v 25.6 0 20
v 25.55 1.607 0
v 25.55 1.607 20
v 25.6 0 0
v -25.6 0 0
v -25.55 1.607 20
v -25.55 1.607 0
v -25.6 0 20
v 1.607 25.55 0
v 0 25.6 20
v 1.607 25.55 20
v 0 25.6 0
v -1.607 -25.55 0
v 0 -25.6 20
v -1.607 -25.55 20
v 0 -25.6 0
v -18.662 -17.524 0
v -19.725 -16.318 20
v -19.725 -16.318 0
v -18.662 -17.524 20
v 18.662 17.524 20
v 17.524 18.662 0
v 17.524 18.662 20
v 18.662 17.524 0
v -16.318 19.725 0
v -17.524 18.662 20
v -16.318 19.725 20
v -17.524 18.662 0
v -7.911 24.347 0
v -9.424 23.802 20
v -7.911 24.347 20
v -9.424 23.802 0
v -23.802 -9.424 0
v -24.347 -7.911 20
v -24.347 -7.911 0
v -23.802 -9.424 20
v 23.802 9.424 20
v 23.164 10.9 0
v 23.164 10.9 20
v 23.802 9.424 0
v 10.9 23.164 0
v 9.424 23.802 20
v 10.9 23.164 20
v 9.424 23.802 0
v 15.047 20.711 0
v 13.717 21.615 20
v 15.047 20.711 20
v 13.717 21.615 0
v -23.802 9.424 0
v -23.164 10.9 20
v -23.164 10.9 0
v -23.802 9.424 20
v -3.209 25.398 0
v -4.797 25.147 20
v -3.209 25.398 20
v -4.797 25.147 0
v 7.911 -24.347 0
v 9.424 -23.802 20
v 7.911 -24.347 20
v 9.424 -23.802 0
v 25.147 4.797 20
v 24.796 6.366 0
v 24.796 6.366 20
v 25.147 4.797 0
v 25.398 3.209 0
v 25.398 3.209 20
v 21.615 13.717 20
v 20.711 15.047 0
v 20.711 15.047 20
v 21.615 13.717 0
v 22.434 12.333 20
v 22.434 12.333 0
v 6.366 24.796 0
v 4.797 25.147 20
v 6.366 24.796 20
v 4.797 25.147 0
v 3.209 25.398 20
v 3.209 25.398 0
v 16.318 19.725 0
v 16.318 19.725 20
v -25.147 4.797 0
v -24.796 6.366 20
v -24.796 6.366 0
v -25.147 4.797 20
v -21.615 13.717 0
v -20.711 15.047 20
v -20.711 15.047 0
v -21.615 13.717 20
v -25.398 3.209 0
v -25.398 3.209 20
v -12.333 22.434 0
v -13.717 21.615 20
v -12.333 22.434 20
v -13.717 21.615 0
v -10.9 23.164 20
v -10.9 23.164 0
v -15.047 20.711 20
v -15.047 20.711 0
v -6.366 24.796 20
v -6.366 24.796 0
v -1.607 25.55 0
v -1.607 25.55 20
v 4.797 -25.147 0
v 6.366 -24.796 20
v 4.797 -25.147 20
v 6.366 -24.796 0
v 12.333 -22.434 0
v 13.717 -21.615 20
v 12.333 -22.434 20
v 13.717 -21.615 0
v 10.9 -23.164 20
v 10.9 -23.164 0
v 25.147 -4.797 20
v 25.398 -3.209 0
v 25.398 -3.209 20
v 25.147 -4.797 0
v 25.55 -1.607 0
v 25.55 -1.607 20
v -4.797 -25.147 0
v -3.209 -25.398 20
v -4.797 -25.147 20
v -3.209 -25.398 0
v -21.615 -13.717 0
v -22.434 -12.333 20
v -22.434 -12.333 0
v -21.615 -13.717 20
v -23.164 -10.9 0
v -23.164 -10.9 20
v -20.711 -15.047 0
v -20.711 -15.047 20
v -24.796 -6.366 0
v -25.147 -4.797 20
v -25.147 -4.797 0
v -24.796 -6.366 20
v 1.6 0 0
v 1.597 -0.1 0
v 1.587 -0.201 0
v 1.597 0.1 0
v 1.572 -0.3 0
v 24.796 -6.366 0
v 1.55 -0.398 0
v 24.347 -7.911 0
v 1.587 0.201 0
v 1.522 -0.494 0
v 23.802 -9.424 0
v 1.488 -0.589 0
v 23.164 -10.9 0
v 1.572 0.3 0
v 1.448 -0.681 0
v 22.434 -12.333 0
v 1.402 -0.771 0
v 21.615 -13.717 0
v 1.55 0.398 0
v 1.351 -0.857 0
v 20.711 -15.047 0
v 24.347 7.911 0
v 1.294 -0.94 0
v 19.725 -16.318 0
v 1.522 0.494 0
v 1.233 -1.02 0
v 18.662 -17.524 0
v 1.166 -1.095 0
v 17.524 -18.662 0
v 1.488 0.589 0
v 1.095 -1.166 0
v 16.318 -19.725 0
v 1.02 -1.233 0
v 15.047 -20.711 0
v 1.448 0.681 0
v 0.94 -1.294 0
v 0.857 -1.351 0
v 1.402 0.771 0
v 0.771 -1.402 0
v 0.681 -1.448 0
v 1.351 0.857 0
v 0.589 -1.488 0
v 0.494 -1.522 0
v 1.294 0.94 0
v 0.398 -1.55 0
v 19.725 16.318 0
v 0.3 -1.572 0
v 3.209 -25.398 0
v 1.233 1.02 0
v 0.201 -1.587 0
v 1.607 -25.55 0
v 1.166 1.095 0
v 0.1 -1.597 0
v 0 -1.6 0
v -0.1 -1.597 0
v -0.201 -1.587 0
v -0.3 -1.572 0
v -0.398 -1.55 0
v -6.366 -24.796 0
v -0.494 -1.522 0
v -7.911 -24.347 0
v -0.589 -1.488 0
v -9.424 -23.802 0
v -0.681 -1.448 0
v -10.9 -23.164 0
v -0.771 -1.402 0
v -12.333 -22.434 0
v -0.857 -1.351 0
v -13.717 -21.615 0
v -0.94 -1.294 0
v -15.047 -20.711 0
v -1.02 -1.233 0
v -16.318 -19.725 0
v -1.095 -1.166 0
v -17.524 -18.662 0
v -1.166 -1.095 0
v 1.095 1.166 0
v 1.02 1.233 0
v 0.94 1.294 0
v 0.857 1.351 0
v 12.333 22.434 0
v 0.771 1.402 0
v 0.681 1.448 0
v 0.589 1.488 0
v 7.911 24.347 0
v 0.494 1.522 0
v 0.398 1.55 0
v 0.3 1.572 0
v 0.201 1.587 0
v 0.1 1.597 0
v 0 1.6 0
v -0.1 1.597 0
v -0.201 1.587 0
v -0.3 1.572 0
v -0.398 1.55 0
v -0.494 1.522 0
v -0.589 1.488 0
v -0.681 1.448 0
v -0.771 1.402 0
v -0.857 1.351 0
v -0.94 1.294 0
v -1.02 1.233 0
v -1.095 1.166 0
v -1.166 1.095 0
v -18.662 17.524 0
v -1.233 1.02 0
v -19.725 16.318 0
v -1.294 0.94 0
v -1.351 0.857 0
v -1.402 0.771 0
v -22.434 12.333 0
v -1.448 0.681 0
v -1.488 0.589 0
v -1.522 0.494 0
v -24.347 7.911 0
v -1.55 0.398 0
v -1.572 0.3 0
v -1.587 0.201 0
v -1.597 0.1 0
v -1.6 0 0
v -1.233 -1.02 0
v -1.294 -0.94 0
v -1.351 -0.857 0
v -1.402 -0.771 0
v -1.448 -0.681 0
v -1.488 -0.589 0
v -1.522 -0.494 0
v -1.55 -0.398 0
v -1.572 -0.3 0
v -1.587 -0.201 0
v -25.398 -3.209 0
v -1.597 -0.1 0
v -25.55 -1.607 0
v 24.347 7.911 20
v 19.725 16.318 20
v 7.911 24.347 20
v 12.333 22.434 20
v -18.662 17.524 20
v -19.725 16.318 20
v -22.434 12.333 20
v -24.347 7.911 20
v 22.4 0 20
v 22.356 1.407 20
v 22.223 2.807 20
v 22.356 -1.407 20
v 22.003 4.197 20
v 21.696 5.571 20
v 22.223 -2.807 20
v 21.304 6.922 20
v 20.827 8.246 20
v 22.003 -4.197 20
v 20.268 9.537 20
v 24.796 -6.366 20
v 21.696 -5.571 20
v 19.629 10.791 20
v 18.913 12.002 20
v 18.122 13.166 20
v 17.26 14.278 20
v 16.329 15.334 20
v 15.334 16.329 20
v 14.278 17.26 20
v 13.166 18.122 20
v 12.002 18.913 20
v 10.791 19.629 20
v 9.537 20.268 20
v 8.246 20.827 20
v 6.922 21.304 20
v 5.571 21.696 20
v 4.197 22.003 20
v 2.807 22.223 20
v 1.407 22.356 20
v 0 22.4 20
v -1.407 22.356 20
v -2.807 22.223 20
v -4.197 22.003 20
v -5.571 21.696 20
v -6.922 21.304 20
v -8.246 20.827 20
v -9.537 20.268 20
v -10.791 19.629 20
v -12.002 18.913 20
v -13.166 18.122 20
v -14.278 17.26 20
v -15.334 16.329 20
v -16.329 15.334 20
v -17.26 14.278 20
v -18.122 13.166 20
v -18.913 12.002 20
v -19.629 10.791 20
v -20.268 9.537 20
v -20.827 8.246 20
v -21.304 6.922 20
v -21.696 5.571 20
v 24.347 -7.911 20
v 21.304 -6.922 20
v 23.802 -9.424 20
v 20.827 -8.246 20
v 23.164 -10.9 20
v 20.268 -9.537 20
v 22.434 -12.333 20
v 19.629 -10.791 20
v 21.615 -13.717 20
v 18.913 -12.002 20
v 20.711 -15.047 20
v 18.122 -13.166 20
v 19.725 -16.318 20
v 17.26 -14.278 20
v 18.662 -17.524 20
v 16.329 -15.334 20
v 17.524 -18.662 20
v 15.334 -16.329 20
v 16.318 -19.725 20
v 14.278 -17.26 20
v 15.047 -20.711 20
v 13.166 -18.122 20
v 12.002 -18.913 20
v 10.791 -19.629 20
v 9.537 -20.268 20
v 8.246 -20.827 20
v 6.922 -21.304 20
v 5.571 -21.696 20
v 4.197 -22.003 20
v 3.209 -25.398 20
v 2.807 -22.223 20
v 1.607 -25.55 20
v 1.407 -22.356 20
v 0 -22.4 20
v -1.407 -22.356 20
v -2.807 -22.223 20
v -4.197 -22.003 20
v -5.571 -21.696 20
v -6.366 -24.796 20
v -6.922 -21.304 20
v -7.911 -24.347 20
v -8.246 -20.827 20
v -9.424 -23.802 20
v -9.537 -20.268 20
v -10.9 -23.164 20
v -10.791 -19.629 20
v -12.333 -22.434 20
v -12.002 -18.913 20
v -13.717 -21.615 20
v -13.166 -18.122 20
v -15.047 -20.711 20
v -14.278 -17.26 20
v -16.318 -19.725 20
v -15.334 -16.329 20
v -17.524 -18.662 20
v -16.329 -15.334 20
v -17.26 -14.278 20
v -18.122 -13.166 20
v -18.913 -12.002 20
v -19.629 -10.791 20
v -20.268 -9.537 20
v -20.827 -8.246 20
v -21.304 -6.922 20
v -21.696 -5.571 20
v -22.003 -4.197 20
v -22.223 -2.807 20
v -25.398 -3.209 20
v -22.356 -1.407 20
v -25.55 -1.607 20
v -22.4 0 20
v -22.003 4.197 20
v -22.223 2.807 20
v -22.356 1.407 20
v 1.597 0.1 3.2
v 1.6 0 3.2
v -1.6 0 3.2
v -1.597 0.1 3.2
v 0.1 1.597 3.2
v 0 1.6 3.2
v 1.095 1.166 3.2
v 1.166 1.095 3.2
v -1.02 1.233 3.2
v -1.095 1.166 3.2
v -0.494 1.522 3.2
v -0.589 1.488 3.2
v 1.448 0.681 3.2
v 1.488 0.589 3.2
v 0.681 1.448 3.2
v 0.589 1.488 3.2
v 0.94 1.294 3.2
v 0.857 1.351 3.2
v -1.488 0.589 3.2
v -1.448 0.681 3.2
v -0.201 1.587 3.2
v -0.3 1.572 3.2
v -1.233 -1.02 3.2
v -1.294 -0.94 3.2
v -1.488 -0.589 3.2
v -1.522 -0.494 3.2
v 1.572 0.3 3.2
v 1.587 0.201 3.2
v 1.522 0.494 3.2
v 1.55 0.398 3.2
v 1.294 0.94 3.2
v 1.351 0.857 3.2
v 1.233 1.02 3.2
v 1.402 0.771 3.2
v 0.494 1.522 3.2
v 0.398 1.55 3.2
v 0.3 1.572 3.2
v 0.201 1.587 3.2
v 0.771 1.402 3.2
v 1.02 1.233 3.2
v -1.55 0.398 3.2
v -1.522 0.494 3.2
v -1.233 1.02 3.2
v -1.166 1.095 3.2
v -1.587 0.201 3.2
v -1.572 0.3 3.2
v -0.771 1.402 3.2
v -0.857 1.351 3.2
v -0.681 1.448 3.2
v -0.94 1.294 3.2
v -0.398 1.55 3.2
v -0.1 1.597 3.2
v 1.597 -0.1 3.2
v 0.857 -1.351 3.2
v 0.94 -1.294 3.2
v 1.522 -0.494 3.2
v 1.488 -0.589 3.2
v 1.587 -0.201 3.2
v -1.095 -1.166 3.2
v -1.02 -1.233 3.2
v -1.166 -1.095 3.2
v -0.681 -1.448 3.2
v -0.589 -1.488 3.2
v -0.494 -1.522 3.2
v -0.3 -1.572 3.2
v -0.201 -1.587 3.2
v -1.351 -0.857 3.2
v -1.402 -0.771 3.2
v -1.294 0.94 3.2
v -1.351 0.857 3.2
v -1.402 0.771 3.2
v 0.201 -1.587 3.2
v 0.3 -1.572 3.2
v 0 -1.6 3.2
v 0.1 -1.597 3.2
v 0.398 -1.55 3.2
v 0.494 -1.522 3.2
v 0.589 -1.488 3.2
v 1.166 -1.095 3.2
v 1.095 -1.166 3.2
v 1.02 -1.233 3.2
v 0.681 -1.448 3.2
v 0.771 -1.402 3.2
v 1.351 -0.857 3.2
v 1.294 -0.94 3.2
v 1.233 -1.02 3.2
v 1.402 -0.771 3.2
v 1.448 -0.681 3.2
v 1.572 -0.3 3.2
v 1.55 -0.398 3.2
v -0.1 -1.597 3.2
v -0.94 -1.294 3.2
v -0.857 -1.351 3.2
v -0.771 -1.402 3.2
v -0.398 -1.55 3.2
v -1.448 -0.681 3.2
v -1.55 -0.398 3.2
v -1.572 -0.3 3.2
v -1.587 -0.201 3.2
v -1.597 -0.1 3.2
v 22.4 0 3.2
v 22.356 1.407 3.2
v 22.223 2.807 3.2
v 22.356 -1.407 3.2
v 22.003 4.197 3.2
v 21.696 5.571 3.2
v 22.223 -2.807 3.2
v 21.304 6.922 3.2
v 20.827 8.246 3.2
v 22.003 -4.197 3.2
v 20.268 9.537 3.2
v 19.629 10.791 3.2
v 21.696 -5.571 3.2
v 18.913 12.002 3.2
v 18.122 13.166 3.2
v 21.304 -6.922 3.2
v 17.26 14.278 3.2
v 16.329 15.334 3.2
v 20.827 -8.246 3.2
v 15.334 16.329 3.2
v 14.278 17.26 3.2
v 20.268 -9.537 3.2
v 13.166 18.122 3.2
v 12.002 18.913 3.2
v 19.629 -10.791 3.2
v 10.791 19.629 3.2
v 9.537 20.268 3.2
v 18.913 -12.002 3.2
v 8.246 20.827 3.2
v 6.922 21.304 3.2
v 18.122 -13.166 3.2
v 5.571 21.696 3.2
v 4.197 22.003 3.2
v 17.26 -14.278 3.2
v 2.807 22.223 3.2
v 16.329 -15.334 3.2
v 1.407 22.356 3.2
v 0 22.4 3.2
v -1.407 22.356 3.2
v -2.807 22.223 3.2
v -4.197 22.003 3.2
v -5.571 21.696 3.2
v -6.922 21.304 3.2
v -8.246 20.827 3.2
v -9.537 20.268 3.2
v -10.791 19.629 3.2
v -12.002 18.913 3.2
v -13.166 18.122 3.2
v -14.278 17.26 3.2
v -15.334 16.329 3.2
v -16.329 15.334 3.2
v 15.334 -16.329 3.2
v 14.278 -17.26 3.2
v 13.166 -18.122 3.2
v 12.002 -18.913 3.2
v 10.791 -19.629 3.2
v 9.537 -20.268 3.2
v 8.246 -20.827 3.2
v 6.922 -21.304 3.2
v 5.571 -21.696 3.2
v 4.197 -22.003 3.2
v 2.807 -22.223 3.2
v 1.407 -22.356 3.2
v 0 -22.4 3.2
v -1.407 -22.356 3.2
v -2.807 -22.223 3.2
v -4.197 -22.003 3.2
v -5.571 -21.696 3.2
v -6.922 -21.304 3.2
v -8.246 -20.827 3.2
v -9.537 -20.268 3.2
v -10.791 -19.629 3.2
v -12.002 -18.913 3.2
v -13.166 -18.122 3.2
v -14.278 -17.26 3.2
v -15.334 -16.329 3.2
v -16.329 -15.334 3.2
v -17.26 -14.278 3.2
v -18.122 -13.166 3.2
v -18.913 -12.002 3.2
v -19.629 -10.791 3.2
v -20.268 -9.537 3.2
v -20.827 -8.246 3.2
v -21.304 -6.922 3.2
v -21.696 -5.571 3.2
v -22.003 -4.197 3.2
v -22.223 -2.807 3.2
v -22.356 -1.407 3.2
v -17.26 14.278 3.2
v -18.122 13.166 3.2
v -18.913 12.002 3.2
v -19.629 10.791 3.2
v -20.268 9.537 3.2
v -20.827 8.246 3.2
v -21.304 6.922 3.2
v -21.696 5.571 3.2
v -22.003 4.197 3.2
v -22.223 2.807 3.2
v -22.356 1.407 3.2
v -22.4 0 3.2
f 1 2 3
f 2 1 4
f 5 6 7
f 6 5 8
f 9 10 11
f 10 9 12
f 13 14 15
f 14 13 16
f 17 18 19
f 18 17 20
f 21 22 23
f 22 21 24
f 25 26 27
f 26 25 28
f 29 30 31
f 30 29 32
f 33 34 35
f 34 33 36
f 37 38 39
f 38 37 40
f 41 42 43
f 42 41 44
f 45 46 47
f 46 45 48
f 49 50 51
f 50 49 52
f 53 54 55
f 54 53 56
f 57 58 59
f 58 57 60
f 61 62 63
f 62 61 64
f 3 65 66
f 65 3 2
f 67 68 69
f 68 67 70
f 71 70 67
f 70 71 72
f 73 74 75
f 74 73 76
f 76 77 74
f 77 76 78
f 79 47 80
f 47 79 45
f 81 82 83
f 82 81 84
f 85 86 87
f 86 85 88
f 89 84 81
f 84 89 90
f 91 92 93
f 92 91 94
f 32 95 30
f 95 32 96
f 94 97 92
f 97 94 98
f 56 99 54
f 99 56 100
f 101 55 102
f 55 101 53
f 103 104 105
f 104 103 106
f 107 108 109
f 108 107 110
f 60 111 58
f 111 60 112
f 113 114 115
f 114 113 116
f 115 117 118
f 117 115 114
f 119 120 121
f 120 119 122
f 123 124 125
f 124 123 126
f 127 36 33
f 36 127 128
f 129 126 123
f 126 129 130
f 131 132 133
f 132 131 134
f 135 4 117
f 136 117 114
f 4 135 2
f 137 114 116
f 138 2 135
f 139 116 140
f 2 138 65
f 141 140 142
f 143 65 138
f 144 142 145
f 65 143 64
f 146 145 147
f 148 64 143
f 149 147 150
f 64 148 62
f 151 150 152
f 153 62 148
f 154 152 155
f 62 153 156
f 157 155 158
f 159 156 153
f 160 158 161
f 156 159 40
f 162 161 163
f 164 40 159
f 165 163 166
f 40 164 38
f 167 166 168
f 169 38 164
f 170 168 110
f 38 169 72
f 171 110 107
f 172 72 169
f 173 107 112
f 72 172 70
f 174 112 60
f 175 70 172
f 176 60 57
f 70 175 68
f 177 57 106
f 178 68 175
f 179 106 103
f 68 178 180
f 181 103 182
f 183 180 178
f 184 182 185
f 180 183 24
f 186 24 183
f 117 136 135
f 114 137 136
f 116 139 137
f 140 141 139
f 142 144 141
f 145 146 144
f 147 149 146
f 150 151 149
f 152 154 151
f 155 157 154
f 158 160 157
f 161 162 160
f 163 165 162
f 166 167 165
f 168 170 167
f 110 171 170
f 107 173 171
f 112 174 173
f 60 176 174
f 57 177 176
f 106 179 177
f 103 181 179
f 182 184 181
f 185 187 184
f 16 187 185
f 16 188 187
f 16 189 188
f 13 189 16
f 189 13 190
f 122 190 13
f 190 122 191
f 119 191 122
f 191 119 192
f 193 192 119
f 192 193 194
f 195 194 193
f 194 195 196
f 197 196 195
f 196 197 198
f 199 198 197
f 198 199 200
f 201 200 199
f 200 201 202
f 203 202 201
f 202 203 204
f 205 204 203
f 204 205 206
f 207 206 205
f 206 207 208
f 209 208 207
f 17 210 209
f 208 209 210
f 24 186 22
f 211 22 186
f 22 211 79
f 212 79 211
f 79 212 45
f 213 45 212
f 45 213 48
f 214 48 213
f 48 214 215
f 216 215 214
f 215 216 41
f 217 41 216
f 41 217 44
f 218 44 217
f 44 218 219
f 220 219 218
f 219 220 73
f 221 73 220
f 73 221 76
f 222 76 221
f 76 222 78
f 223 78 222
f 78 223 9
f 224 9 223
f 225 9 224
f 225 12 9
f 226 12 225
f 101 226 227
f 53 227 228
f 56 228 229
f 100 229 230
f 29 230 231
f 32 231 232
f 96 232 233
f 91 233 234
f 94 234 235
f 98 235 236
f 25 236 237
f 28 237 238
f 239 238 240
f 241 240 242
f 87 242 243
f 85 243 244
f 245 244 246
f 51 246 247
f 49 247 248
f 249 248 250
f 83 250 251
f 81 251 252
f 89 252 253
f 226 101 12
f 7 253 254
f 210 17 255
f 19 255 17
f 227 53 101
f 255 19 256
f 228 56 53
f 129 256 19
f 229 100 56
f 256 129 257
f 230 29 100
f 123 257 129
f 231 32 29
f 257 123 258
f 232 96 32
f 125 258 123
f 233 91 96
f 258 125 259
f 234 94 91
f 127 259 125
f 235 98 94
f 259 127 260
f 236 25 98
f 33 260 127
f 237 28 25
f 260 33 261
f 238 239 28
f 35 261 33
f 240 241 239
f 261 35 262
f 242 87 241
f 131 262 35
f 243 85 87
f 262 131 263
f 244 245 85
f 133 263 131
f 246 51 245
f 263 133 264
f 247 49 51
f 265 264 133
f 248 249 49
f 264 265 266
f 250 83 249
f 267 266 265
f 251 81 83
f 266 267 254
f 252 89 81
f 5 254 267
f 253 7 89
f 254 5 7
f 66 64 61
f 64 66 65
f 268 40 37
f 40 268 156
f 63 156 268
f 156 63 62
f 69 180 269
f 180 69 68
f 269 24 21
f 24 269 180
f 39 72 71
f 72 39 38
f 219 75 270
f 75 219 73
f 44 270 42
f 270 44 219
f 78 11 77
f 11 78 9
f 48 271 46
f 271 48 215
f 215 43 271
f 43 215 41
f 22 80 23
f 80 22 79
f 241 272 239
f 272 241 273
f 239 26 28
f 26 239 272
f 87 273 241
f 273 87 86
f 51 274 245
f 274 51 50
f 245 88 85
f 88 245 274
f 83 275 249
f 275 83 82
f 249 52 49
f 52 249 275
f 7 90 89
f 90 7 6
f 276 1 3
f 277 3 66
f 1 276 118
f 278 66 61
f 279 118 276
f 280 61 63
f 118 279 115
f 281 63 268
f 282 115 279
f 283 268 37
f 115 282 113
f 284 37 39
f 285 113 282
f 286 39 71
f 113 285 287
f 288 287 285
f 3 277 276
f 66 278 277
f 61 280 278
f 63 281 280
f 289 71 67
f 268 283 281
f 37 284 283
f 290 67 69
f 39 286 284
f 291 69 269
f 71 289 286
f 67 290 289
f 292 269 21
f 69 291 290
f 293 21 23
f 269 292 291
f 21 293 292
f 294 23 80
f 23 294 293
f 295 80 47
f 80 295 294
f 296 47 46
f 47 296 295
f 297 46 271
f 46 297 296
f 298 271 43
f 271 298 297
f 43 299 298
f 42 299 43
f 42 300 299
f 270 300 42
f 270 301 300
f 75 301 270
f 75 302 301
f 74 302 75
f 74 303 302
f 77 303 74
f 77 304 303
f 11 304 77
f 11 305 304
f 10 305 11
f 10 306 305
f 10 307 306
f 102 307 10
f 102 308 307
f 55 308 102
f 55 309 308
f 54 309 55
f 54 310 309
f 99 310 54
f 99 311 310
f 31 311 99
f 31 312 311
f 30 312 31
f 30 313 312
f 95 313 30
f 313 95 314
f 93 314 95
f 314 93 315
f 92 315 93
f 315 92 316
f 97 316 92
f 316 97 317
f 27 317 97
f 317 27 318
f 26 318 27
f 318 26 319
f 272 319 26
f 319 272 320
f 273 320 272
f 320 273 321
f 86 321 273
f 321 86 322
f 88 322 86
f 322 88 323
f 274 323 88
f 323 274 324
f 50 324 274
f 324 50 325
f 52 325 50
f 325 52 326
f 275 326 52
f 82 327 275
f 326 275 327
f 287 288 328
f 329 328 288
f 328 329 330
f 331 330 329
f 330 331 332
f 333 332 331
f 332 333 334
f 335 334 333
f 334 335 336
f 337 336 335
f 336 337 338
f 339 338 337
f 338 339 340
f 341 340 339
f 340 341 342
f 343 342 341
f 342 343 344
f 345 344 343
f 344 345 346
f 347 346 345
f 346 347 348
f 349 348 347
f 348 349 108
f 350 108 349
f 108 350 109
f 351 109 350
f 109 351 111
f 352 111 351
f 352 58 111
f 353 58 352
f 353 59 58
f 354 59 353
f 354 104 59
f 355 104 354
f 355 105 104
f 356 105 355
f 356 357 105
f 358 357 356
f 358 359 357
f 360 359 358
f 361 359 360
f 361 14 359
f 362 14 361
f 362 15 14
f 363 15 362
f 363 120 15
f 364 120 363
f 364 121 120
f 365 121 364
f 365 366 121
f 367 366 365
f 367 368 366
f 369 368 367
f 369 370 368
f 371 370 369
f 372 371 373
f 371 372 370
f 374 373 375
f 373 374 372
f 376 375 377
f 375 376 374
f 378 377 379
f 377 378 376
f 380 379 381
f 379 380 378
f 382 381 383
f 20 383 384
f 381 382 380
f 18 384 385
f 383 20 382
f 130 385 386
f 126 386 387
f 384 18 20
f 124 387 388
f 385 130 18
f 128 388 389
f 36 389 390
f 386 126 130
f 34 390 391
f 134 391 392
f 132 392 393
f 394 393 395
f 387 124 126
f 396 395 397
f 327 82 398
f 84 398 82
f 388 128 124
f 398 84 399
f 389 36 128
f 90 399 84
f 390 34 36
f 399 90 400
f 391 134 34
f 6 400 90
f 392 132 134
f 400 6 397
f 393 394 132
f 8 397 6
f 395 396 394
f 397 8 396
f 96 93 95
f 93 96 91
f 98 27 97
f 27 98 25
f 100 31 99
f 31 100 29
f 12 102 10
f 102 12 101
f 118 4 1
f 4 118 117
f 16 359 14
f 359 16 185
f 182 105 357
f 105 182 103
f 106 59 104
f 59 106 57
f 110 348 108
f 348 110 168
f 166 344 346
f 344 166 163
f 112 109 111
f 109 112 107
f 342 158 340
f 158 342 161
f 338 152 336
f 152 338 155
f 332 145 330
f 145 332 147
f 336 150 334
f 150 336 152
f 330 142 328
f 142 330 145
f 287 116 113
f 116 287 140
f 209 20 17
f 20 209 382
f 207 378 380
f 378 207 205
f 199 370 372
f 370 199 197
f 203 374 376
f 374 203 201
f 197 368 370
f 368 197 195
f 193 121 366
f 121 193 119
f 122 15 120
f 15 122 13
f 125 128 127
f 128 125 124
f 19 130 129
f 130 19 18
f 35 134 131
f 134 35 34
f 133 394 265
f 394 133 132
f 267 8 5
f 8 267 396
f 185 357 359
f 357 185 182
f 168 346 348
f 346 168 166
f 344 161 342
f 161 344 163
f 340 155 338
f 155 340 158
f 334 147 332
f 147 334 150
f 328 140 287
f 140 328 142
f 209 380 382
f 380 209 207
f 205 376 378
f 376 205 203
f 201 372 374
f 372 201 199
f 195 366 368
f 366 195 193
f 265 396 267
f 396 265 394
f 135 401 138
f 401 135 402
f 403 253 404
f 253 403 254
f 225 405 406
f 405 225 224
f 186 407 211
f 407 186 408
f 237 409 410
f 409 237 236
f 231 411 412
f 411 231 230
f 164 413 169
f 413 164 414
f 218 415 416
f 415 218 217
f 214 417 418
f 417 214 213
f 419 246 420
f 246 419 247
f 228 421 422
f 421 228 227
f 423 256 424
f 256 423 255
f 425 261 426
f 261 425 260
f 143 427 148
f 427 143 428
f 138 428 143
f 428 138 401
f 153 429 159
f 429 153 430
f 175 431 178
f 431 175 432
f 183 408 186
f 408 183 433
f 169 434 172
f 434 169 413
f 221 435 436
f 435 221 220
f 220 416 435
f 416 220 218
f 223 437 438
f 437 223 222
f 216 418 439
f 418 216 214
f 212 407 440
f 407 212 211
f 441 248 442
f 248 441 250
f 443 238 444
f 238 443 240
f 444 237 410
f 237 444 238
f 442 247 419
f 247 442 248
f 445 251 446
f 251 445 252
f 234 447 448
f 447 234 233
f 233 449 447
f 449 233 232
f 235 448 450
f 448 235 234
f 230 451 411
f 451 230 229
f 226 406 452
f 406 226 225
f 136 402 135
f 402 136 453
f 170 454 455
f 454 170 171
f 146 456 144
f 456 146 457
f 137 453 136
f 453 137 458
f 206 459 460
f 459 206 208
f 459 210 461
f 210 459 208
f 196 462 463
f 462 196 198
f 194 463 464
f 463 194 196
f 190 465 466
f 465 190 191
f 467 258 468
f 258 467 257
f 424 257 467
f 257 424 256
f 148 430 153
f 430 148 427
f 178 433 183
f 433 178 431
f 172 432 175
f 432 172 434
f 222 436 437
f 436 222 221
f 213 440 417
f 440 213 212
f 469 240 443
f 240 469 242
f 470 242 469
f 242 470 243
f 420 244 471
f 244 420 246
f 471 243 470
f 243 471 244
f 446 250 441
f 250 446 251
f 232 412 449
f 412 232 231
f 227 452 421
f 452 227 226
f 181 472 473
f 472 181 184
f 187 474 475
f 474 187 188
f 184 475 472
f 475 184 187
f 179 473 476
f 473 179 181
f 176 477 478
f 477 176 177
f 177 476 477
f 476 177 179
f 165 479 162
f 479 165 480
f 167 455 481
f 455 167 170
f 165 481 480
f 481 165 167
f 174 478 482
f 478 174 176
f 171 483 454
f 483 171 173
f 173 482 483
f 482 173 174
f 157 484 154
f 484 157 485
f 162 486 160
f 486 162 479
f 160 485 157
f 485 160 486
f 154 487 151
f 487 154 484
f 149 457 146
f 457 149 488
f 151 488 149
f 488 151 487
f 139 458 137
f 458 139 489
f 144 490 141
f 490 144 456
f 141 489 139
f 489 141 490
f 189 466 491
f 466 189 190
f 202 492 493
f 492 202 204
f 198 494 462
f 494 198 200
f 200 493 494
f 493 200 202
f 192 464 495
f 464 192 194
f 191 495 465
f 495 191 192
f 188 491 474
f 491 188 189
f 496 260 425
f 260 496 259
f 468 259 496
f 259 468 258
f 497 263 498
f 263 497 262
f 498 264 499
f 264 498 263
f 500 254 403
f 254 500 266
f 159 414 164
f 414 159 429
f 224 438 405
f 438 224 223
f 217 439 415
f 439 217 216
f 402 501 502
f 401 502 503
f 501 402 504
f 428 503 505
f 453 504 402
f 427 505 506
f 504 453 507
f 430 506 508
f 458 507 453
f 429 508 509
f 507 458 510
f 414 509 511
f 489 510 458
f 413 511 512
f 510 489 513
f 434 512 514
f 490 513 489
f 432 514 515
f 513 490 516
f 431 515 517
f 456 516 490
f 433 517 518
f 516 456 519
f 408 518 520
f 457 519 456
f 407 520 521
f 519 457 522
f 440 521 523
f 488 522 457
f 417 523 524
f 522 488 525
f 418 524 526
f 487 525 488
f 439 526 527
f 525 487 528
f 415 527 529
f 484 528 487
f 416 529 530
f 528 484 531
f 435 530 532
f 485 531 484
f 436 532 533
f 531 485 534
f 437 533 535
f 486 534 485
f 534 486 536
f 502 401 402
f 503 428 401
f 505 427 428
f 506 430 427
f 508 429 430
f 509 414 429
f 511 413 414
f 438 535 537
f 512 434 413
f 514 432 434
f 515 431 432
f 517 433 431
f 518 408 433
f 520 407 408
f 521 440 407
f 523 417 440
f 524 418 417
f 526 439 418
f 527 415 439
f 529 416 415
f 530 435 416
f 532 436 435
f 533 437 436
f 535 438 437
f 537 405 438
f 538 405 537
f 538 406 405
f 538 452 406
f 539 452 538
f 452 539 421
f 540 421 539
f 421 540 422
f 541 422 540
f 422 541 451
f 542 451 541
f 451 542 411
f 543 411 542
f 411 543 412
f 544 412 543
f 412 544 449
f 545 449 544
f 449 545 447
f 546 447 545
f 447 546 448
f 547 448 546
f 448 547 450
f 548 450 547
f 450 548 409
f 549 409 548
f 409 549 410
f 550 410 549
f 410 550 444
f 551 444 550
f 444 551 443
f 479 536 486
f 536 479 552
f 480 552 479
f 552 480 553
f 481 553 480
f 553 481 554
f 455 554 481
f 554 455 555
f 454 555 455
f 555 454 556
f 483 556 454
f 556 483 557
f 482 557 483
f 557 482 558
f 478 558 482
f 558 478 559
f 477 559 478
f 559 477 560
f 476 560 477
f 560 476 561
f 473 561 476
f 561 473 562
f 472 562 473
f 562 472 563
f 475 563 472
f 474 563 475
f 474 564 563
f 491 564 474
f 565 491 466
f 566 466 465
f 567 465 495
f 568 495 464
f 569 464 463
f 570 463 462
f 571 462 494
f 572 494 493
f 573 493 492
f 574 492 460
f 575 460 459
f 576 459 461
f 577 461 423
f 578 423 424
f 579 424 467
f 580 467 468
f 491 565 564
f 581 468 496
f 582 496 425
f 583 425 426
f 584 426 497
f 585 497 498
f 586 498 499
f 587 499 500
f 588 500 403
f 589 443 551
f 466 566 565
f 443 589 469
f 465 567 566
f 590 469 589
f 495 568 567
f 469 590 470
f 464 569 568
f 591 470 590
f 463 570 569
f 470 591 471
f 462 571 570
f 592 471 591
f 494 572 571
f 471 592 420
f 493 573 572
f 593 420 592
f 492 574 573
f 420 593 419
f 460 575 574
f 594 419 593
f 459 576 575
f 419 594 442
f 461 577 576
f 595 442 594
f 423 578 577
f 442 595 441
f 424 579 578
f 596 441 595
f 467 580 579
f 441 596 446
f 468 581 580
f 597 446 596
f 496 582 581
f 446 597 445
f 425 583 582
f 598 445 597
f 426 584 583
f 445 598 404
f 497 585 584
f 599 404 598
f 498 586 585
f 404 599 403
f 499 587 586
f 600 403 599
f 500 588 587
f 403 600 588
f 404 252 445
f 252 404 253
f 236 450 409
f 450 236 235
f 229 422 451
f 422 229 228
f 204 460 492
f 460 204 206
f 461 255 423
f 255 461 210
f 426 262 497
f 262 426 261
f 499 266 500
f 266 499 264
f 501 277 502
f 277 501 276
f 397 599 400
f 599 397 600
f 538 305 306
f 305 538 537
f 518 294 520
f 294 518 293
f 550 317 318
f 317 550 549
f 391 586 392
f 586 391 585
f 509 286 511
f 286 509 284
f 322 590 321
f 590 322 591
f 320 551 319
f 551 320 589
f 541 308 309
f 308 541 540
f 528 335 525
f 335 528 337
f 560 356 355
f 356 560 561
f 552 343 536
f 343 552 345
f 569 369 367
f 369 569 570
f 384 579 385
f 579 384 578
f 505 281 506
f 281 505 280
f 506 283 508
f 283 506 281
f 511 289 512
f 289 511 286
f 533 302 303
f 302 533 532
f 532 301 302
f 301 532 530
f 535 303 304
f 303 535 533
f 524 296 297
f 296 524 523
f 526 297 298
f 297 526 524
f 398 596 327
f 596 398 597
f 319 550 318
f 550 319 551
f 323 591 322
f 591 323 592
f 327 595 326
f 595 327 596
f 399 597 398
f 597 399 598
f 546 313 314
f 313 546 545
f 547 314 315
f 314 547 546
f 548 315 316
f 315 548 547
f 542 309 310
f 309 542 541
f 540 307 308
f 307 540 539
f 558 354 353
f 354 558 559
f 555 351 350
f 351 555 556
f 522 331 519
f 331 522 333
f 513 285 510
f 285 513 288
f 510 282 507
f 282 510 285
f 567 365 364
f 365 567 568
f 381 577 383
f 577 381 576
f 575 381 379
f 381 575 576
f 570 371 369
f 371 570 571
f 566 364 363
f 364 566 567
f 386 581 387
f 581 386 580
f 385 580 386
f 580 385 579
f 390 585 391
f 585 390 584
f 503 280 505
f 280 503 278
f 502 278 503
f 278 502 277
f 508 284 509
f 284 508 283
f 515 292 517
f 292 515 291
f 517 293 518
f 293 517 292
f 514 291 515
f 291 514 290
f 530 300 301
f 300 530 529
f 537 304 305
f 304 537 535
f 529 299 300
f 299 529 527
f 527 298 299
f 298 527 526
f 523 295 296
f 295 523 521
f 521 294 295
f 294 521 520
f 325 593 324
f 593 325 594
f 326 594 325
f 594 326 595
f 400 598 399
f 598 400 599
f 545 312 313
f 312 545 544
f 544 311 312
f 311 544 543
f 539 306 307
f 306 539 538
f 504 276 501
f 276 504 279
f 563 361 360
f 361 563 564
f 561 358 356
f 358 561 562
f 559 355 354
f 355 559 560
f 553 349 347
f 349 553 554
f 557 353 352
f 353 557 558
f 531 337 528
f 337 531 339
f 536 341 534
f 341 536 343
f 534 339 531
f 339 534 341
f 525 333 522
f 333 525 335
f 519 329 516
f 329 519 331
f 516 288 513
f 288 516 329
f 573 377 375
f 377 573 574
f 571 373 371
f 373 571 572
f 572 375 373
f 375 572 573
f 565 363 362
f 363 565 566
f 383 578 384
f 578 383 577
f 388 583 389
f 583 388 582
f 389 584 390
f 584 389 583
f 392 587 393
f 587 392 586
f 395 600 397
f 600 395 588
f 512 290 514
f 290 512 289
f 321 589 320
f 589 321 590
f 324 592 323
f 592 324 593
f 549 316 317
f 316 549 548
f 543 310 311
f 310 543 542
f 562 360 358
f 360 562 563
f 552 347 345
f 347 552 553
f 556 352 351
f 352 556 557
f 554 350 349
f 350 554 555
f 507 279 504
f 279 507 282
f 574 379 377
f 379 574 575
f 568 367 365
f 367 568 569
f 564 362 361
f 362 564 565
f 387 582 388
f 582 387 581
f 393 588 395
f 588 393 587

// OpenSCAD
difference() {
    cylinder(h=20, r=25.6, center=false, $fn=100);
    cylinder(h=3.2, r=1.6, center=false, $fn=100);
    translate([0,0,3.2])
    cylinder(h=20, r=22.4, center=false, $fn=100);
}
